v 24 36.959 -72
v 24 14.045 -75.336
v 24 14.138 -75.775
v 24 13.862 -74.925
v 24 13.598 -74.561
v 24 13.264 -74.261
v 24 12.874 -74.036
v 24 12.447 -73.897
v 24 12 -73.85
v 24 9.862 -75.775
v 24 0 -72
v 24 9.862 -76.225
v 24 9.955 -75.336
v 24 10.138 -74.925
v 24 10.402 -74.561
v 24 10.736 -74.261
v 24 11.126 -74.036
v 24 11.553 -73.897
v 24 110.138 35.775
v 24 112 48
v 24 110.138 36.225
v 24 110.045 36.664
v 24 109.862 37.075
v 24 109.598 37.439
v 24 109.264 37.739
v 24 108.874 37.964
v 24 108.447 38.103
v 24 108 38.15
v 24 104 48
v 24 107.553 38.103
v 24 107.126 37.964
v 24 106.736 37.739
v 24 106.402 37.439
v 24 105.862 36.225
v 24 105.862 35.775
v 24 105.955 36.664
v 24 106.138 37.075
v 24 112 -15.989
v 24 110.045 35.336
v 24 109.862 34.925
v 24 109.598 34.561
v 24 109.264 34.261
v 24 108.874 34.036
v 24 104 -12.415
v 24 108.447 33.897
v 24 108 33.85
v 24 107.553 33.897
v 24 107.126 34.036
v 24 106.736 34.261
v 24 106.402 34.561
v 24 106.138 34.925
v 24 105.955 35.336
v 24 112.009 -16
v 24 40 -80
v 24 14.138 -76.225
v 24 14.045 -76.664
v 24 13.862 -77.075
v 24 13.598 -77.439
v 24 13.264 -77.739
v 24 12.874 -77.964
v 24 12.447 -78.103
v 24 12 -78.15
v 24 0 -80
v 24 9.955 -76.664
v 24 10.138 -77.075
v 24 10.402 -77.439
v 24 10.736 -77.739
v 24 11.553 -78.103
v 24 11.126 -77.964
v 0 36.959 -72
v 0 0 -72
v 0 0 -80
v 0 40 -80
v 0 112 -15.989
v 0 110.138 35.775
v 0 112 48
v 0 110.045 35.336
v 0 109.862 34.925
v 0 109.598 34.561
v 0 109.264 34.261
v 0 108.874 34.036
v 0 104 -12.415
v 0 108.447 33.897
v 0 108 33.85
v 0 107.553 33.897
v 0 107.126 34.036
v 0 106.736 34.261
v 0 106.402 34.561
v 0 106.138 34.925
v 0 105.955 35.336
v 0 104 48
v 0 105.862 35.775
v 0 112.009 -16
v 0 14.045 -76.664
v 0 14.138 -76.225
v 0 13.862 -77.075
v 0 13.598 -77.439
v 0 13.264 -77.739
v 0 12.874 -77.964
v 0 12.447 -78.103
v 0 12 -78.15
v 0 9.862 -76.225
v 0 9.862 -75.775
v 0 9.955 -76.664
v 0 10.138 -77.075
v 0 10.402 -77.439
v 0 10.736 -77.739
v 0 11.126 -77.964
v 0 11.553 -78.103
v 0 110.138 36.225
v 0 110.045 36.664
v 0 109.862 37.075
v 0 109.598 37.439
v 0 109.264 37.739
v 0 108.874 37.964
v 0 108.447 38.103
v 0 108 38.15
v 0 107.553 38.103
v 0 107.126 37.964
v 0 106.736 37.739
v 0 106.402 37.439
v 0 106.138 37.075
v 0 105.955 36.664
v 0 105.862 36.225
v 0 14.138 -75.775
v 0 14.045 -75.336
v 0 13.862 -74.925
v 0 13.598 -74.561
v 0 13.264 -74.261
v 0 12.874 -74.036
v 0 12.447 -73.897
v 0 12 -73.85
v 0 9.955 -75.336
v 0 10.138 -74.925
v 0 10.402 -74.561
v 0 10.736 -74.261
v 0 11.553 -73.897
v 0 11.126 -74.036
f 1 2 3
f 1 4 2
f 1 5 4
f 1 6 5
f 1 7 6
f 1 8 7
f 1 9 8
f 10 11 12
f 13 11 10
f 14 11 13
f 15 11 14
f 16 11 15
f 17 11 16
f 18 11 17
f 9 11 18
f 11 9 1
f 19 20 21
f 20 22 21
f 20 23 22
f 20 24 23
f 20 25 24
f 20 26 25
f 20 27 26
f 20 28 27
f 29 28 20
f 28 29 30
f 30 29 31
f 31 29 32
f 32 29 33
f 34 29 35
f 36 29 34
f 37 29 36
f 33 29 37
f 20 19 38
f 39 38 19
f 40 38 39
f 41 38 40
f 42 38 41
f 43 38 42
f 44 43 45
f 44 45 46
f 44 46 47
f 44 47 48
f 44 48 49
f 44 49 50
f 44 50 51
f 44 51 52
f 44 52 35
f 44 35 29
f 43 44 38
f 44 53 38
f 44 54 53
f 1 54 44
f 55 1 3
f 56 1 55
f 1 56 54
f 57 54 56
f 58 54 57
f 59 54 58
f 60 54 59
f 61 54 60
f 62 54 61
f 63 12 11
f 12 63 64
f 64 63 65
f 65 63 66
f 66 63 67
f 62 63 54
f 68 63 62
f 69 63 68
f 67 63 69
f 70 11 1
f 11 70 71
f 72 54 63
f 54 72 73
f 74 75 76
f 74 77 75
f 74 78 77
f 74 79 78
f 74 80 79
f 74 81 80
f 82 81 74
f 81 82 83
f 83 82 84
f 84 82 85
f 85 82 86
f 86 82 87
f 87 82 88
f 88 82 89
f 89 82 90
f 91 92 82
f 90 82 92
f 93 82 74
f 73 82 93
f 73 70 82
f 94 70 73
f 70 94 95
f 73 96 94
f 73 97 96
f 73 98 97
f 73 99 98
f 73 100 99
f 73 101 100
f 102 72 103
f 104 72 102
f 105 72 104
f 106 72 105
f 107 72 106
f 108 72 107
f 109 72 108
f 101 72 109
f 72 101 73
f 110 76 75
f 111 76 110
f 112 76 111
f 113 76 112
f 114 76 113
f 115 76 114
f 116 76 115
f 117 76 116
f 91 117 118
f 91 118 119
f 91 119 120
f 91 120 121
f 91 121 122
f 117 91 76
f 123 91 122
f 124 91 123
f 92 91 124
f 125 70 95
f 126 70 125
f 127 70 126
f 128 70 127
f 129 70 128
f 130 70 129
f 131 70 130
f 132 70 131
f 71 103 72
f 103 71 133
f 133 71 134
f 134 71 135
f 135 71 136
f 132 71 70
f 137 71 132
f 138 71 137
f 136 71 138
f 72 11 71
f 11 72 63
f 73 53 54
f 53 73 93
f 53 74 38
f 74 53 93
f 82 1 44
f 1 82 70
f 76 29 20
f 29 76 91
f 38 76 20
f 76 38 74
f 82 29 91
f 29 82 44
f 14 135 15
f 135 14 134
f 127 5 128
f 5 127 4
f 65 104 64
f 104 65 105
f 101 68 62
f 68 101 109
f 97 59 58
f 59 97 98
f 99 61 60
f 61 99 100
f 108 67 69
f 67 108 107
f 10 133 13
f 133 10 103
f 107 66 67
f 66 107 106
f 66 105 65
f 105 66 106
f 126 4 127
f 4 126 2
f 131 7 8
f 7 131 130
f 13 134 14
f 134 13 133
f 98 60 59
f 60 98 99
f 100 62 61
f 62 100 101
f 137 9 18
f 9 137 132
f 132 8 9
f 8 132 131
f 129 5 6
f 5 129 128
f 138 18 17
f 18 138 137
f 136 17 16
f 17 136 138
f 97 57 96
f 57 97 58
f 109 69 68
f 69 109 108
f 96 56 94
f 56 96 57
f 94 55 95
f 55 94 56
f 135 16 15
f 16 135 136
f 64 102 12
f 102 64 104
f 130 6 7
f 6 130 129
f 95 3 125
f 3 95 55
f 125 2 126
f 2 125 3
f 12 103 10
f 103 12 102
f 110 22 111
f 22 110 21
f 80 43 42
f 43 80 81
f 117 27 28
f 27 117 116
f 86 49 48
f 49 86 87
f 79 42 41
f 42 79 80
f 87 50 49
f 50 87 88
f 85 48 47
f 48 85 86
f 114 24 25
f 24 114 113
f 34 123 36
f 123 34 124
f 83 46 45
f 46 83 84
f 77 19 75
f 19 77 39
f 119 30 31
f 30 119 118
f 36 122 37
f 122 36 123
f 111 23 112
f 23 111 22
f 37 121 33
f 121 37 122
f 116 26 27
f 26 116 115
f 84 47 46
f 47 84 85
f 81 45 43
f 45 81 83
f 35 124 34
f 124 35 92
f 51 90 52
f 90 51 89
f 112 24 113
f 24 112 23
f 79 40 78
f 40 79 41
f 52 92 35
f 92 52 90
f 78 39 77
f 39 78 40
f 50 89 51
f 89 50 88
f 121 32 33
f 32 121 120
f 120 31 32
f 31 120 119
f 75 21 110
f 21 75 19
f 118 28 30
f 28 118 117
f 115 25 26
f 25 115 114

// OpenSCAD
// TOP ENTRY TRACK
// color("white")
difference() {
union() {
    // left end of track
    translate([0,0,-80])
    cube([24,40,8]);
    
    // angled piece
    translate([0,40,-80])
    rotate([41.63,0,0])
    cube([24,96.34,8]);
    
    // vertical entry on top left
    translate([0,104,-16])
    cube([24,8,64]);
}
    // far left hole
    translate([-4,12,-76])
    rotate([0,90,0])
    cylinder(r=2.15,60, $fn=30);

    // far right hole
    translate([-4,108,36])
    rotate([0,90,0])
    cylinder(r=2.15,60, $fn=30);
}
